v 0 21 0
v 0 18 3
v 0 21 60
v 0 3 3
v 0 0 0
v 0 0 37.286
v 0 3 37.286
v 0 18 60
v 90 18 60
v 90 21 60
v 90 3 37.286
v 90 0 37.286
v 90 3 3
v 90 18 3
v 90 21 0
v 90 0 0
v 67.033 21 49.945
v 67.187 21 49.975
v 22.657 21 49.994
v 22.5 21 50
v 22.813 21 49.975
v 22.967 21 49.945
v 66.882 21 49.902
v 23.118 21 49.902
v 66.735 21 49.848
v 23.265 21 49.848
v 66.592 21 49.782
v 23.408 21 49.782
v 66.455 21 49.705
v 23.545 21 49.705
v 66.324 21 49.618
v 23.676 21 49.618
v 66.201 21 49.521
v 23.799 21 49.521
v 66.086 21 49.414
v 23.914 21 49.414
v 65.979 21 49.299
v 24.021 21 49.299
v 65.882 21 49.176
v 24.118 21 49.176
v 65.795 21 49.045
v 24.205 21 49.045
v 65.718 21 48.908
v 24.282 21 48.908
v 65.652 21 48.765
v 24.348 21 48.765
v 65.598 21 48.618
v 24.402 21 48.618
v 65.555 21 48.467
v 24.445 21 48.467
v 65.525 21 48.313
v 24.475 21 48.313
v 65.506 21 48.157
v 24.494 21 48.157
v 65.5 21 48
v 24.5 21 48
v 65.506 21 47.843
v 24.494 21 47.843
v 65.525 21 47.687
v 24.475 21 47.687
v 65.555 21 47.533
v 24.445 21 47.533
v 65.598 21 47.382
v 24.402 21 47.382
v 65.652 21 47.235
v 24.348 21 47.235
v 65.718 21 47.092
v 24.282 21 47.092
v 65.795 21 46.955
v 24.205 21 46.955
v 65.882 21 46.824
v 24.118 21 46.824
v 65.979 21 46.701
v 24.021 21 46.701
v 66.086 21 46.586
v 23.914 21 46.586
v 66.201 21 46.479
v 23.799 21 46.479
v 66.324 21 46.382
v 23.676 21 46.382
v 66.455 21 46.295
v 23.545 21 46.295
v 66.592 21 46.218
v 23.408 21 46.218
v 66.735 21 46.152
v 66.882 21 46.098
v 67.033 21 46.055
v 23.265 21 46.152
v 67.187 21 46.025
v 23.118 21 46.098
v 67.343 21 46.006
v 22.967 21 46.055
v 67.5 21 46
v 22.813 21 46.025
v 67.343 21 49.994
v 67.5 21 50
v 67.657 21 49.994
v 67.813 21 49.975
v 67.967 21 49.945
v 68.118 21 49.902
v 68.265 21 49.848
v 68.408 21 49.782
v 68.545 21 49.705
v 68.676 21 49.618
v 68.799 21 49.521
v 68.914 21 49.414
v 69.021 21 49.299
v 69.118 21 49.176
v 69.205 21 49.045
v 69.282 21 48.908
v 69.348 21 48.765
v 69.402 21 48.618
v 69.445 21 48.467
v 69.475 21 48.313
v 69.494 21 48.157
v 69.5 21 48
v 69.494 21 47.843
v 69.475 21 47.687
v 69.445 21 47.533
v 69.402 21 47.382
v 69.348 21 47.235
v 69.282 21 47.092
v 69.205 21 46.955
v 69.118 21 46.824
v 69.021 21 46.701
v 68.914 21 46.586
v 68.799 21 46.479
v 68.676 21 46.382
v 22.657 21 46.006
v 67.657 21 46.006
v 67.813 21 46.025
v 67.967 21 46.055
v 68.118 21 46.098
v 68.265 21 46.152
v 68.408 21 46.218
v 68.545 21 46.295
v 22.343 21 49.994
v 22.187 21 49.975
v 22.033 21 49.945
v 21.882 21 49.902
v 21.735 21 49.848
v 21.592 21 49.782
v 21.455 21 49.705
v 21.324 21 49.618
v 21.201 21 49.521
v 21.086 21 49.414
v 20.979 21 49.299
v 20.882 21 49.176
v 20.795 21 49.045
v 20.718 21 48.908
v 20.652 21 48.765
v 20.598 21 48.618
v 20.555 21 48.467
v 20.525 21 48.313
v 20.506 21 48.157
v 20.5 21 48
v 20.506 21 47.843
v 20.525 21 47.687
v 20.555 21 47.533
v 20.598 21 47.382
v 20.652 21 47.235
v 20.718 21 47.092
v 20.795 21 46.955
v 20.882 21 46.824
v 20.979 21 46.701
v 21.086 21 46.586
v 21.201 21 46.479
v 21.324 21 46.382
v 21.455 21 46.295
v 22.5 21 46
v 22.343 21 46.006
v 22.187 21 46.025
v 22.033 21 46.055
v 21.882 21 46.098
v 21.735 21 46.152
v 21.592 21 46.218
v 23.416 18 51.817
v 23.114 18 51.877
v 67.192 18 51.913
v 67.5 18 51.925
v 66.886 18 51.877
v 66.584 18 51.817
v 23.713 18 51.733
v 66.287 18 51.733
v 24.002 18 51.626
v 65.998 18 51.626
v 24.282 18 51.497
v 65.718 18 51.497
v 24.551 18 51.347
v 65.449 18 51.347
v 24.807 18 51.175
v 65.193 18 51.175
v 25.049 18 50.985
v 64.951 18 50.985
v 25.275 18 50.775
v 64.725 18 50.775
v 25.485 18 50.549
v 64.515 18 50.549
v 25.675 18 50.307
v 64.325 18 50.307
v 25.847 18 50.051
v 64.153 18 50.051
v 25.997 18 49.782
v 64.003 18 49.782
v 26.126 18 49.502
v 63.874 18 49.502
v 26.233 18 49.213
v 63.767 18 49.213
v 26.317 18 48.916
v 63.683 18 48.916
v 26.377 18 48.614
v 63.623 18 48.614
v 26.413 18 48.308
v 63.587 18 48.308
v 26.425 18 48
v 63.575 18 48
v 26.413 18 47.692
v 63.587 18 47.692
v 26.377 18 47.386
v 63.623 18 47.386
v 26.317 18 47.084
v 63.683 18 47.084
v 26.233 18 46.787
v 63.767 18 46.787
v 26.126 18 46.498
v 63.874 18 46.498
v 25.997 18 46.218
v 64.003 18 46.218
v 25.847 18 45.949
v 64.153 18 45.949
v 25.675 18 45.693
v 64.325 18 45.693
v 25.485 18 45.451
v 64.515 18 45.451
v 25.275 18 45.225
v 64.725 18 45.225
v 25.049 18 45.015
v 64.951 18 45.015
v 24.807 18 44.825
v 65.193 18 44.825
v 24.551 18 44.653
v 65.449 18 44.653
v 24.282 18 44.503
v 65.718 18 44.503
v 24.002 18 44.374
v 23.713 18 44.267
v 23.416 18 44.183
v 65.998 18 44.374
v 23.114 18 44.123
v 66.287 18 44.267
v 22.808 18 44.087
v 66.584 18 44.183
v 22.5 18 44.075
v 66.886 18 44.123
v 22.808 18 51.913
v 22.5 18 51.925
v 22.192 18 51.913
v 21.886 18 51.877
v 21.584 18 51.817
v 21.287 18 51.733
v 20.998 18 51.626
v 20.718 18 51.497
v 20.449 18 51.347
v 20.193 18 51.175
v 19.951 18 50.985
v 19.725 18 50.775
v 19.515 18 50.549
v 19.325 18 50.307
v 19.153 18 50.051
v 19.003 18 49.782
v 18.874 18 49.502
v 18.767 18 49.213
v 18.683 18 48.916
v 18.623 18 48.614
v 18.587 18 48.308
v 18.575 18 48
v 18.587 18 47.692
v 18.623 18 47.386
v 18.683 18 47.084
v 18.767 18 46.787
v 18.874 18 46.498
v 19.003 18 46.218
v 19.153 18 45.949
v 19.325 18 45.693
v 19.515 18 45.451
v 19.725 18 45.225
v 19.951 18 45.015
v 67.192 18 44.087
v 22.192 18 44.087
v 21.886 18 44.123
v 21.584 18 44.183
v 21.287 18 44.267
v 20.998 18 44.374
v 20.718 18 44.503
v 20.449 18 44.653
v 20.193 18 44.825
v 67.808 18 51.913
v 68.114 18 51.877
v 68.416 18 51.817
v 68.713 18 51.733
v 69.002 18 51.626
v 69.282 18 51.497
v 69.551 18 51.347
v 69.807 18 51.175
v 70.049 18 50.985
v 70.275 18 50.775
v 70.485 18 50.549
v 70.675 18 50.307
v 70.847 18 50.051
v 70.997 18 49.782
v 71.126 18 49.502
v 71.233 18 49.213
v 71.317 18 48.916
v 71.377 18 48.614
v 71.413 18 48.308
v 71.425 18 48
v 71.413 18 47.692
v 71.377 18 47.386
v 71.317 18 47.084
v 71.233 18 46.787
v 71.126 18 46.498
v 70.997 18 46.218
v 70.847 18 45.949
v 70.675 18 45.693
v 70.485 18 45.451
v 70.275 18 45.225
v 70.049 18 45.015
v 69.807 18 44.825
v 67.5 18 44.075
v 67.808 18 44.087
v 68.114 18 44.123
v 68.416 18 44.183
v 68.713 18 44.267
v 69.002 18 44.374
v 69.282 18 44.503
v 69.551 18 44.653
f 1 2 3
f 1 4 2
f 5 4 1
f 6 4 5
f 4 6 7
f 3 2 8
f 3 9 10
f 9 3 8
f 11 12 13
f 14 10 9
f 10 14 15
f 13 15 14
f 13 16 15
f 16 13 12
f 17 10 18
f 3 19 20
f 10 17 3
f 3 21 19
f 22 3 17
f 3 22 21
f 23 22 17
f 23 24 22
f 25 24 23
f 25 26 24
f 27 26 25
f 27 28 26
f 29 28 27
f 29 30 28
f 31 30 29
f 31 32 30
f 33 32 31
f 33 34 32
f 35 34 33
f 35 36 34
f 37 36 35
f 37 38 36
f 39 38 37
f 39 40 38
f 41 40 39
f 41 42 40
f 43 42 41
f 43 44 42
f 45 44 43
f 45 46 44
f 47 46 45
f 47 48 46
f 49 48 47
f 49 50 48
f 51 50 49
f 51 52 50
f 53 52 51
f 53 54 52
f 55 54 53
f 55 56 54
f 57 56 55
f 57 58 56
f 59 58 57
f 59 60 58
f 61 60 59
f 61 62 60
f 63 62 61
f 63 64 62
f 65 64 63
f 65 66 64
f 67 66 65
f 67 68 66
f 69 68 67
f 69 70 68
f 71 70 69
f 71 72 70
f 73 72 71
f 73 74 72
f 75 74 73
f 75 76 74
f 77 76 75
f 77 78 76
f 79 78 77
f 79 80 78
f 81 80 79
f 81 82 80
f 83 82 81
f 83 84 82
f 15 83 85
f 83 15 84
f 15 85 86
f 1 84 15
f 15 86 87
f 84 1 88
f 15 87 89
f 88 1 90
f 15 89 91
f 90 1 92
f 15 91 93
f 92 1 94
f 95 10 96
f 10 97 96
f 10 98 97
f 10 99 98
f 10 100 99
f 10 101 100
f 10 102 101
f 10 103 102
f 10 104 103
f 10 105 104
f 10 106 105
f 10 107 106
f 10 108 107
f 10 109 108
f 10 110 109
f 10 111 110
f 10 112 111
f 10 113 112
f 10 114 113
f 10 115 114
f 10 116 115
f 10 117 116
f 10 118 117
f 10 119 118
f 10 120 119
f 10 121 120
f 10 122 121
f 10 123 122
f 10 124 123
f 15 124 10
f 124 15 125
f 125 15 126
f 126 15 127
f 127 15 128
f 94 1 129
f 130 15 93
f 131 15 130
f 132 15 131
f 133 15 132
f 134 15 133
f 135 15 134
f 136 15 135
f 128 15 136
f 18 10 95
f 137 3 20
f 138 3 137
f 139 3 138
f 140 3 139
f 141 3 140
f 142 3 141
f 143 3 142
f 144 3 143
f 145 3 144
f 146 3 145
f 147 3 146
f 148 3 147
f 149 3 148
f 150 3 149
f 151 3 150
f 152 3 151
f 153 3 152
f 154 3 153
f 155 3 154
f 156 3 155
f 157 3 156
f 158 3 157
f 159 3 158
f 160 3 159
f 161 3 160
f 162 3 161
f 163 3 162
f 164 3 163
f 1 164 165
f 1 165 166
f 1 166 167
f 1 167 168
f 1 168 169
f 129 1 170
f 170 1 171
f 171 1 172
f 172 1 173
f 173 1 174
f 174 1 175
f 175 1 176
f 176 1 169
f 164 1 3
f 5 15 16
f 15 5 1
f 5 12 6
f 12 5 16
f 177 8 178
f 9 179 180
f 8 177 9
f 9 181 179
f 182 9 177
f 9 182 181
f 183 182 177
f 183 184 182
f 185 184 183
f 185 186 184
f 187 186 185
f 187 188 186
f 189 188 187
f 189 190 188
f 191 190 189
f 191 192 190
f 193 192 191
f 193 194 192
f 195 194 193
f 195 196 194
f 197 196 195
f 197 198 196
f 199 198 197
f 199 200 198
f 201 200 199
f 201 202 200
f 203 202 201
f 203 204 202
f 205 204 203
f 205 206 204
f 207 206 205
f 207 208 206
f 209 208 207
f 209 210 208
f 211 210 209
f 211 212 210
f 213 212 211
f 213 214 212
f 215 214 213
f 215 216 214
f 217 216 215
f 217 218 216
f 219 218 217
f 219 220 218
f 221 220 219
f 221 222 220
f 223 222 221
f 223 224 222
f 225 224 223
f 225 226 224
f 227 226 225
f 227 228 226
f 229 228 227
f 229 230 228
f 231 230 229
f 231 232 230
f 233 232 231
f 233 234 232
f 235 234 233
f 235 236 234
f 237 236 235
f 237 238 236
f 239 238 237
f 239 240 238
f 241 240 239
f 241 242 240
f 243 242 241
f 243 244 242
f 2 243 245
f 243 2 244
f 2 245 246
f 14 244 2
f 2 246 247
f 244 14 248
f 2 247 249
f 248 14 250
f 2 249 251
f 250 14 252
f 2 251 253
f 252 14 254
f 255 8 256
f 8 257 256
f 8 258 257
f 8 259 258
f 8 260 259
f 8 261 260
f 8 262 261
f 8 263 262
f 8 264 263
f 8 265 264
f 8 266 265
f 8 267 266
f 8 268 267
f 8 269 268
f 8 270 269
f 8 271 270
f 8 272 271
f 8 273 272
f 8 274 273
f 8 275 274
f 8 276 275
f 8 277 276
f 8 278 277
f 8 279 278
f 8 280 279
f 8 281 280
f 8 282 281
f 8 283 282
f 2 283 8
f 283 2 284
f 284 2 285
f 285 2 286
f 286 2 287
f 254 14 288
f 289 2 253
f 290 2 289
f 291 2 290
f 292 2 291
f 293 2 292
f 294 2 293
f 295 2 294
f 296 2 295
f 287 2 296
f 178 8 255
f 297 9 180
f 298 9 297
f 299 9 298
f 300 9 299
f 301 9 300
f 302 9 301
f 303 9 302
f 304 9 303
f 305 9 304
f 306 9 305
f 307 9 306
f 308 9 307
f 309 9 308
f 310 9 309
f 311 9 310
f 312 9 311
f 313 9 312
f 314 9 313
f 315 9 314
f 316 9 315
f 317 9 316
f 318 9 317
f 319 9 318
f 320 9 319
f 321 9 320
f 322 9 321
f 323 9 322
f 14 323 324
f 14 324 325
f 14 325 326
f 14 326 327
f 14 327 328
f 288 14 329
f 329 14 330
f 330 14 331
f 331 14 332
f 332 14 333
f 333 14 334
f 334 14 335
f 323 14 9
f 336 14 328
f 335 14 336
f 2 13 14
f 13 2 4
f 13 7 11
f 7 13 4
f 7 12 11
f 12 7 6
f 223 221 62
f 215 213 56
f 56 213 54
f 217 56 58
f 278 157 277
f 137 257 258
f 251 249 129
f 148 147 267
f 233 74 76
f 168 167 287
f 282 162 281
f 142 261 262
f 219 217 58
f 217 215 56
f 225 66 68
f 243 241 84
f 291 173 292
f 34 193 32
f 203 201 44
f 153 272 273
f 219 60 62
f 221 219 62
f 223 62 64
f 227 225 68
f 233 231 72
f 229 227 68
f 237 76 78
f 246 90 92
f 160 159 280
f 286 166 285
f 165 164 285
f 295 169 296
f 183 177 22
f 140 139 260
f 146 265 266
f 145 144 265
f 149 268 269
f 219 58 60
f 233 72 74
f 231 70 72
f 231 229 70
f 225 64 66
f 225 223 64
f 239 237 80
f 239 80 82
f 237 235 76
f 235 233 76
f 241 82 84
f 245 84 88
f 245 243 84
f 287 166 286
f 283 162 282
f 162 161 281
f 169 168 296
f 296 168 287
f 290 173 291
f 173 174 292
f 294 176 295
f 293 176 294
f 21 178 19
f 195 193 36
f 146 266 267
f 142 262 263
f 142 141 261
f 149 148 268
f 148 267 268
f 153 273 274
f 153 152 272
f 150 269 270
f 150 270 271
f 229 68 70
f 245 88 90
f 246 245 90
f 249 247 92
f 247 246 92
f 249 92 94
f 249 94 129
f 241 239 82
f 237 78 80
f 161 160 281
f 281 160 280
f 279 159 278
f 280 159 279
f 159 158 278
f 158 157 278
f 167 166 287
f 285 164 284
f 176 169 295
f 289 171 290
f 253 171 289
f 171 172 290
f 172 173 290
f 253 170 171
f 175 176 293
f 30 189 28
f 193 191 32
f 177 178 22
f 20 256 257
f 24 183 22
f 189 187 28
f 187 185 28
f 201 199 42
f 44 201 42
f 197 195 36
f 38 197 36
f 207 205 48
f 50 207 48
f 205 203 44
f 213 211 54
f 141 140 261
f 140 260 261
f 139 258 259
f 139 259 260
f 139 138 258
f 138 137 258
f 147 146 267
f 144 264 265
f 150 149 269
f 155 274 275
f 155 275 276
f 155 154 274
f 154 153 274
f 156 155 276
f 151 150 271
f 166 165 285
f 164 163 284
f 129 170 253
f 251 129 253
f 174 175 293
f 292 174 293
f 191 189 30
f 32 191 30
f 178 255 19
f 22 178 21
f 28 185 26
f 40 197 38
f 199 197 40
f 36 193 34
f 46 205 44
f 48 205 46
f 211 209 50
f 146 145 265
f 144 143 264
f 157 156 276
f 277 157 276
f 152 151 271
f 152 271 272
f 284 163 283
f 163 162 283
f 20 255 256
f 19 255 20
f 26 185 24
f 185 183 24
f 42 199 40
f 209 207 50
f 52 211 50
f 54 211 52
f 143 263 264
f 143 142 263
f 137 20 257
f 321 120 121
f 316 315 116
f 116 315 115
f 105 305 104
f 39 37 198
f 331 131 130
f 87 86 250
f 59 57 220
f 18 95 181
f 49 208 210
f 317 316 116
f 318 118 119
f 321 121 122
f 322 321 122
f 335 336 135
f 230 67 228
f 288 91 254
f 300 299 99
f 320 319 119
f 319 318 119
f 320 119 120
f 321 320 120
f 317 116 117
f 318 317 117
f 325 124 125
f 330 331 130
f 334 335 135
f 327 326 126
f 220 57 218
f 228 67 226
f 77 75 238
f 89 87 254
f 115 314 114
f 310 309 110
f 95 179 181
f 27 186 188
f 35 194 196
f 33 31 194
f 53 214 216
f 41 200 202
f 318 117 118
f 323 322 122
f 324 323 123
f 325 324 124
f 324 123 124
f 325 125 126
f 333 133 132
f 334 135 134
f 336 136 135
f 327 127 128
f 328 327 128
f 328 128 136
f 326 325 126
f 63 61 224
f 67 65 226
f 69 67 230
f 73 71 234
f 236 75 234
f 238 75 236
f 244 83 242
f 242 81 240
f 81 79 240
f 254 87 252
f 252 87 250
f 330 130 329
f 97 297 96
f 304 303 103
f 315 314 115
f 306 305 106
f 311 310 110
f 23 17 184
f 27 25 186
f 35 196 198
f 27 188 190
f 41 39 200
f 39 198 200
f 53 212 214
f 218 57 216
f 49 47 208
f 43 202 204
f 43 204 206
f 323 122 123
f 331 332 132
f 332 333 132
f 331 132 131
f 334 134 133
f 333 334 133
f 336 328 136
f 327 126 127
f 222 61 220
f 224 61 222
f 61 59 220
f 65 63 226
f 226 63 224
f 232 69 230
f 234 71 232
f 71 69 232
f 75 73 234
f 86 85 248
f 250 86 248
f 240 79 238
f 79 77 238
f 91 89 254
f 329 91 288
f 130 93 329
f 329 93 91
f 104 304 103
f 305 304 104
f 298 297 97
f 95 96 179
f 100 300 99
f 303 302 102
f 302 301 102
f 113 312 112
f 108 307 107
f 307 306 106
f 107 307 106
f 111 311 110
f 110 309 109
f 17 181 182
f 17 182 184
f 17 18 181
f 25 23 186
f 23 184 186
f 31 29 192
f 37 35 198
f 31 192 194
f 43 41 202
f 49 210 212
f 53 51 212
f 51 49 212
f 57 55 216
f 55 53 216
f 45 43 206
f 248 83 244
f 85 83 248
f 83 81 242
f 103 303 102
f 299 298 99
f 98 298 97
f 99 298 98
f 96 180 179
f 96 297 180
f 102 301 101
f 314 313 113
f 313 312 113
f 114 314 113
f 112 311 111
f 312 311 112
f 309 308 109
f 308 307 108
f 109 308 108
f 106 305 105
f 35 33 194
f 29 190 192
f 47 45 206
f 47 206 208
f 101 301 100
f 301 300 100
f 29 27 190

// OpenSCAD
bookThickness = 15;
holderThickness = 3;
holderWidth = 90;
holderHeight = 60;

screwHoleDiameterOut = 4;
screwHoleDiameterIn = 7.85;

module holder() {
	cube([holderWidth, bookThickness + (holderThickness * 2), holderHeight]);
}

module deviceCutOut() {
	translate([-holderWidth * 0.25, holderThickness, holderThickness])
	cube([holderWidth * 1.5, bookThickness, holderHeight]);	
}

module frontLip() {
	translate([-holderWidth * 0.25, -holderThickness * 2, holderThickness + (holderHeight / 1.75)])
	cube([holderWidth * 1.5, bookThickness, holderHeight]);	
}

module screwHole() {
	rotate([90, 0, 0])
	cylinder(h=holderThickness, r1=screwHoleDiameterOut / 2, r2 = screwHoleDiameterIn / 2, center=false, $fn=80);
}

difference() {
	difference() {
		difference() {
			holder();
			deviceCutOut();
		}

		frontLip();
	}

	translate([holderWidth / 4, bookThickness + (holderThickness * 2), holderHeight / 1.25])
	screwHole();

	translate([(holderWidth / 4) * 3, bookThickness + (holderThickness * 2), holderHeight / 1.25])
	screwHole();
}
